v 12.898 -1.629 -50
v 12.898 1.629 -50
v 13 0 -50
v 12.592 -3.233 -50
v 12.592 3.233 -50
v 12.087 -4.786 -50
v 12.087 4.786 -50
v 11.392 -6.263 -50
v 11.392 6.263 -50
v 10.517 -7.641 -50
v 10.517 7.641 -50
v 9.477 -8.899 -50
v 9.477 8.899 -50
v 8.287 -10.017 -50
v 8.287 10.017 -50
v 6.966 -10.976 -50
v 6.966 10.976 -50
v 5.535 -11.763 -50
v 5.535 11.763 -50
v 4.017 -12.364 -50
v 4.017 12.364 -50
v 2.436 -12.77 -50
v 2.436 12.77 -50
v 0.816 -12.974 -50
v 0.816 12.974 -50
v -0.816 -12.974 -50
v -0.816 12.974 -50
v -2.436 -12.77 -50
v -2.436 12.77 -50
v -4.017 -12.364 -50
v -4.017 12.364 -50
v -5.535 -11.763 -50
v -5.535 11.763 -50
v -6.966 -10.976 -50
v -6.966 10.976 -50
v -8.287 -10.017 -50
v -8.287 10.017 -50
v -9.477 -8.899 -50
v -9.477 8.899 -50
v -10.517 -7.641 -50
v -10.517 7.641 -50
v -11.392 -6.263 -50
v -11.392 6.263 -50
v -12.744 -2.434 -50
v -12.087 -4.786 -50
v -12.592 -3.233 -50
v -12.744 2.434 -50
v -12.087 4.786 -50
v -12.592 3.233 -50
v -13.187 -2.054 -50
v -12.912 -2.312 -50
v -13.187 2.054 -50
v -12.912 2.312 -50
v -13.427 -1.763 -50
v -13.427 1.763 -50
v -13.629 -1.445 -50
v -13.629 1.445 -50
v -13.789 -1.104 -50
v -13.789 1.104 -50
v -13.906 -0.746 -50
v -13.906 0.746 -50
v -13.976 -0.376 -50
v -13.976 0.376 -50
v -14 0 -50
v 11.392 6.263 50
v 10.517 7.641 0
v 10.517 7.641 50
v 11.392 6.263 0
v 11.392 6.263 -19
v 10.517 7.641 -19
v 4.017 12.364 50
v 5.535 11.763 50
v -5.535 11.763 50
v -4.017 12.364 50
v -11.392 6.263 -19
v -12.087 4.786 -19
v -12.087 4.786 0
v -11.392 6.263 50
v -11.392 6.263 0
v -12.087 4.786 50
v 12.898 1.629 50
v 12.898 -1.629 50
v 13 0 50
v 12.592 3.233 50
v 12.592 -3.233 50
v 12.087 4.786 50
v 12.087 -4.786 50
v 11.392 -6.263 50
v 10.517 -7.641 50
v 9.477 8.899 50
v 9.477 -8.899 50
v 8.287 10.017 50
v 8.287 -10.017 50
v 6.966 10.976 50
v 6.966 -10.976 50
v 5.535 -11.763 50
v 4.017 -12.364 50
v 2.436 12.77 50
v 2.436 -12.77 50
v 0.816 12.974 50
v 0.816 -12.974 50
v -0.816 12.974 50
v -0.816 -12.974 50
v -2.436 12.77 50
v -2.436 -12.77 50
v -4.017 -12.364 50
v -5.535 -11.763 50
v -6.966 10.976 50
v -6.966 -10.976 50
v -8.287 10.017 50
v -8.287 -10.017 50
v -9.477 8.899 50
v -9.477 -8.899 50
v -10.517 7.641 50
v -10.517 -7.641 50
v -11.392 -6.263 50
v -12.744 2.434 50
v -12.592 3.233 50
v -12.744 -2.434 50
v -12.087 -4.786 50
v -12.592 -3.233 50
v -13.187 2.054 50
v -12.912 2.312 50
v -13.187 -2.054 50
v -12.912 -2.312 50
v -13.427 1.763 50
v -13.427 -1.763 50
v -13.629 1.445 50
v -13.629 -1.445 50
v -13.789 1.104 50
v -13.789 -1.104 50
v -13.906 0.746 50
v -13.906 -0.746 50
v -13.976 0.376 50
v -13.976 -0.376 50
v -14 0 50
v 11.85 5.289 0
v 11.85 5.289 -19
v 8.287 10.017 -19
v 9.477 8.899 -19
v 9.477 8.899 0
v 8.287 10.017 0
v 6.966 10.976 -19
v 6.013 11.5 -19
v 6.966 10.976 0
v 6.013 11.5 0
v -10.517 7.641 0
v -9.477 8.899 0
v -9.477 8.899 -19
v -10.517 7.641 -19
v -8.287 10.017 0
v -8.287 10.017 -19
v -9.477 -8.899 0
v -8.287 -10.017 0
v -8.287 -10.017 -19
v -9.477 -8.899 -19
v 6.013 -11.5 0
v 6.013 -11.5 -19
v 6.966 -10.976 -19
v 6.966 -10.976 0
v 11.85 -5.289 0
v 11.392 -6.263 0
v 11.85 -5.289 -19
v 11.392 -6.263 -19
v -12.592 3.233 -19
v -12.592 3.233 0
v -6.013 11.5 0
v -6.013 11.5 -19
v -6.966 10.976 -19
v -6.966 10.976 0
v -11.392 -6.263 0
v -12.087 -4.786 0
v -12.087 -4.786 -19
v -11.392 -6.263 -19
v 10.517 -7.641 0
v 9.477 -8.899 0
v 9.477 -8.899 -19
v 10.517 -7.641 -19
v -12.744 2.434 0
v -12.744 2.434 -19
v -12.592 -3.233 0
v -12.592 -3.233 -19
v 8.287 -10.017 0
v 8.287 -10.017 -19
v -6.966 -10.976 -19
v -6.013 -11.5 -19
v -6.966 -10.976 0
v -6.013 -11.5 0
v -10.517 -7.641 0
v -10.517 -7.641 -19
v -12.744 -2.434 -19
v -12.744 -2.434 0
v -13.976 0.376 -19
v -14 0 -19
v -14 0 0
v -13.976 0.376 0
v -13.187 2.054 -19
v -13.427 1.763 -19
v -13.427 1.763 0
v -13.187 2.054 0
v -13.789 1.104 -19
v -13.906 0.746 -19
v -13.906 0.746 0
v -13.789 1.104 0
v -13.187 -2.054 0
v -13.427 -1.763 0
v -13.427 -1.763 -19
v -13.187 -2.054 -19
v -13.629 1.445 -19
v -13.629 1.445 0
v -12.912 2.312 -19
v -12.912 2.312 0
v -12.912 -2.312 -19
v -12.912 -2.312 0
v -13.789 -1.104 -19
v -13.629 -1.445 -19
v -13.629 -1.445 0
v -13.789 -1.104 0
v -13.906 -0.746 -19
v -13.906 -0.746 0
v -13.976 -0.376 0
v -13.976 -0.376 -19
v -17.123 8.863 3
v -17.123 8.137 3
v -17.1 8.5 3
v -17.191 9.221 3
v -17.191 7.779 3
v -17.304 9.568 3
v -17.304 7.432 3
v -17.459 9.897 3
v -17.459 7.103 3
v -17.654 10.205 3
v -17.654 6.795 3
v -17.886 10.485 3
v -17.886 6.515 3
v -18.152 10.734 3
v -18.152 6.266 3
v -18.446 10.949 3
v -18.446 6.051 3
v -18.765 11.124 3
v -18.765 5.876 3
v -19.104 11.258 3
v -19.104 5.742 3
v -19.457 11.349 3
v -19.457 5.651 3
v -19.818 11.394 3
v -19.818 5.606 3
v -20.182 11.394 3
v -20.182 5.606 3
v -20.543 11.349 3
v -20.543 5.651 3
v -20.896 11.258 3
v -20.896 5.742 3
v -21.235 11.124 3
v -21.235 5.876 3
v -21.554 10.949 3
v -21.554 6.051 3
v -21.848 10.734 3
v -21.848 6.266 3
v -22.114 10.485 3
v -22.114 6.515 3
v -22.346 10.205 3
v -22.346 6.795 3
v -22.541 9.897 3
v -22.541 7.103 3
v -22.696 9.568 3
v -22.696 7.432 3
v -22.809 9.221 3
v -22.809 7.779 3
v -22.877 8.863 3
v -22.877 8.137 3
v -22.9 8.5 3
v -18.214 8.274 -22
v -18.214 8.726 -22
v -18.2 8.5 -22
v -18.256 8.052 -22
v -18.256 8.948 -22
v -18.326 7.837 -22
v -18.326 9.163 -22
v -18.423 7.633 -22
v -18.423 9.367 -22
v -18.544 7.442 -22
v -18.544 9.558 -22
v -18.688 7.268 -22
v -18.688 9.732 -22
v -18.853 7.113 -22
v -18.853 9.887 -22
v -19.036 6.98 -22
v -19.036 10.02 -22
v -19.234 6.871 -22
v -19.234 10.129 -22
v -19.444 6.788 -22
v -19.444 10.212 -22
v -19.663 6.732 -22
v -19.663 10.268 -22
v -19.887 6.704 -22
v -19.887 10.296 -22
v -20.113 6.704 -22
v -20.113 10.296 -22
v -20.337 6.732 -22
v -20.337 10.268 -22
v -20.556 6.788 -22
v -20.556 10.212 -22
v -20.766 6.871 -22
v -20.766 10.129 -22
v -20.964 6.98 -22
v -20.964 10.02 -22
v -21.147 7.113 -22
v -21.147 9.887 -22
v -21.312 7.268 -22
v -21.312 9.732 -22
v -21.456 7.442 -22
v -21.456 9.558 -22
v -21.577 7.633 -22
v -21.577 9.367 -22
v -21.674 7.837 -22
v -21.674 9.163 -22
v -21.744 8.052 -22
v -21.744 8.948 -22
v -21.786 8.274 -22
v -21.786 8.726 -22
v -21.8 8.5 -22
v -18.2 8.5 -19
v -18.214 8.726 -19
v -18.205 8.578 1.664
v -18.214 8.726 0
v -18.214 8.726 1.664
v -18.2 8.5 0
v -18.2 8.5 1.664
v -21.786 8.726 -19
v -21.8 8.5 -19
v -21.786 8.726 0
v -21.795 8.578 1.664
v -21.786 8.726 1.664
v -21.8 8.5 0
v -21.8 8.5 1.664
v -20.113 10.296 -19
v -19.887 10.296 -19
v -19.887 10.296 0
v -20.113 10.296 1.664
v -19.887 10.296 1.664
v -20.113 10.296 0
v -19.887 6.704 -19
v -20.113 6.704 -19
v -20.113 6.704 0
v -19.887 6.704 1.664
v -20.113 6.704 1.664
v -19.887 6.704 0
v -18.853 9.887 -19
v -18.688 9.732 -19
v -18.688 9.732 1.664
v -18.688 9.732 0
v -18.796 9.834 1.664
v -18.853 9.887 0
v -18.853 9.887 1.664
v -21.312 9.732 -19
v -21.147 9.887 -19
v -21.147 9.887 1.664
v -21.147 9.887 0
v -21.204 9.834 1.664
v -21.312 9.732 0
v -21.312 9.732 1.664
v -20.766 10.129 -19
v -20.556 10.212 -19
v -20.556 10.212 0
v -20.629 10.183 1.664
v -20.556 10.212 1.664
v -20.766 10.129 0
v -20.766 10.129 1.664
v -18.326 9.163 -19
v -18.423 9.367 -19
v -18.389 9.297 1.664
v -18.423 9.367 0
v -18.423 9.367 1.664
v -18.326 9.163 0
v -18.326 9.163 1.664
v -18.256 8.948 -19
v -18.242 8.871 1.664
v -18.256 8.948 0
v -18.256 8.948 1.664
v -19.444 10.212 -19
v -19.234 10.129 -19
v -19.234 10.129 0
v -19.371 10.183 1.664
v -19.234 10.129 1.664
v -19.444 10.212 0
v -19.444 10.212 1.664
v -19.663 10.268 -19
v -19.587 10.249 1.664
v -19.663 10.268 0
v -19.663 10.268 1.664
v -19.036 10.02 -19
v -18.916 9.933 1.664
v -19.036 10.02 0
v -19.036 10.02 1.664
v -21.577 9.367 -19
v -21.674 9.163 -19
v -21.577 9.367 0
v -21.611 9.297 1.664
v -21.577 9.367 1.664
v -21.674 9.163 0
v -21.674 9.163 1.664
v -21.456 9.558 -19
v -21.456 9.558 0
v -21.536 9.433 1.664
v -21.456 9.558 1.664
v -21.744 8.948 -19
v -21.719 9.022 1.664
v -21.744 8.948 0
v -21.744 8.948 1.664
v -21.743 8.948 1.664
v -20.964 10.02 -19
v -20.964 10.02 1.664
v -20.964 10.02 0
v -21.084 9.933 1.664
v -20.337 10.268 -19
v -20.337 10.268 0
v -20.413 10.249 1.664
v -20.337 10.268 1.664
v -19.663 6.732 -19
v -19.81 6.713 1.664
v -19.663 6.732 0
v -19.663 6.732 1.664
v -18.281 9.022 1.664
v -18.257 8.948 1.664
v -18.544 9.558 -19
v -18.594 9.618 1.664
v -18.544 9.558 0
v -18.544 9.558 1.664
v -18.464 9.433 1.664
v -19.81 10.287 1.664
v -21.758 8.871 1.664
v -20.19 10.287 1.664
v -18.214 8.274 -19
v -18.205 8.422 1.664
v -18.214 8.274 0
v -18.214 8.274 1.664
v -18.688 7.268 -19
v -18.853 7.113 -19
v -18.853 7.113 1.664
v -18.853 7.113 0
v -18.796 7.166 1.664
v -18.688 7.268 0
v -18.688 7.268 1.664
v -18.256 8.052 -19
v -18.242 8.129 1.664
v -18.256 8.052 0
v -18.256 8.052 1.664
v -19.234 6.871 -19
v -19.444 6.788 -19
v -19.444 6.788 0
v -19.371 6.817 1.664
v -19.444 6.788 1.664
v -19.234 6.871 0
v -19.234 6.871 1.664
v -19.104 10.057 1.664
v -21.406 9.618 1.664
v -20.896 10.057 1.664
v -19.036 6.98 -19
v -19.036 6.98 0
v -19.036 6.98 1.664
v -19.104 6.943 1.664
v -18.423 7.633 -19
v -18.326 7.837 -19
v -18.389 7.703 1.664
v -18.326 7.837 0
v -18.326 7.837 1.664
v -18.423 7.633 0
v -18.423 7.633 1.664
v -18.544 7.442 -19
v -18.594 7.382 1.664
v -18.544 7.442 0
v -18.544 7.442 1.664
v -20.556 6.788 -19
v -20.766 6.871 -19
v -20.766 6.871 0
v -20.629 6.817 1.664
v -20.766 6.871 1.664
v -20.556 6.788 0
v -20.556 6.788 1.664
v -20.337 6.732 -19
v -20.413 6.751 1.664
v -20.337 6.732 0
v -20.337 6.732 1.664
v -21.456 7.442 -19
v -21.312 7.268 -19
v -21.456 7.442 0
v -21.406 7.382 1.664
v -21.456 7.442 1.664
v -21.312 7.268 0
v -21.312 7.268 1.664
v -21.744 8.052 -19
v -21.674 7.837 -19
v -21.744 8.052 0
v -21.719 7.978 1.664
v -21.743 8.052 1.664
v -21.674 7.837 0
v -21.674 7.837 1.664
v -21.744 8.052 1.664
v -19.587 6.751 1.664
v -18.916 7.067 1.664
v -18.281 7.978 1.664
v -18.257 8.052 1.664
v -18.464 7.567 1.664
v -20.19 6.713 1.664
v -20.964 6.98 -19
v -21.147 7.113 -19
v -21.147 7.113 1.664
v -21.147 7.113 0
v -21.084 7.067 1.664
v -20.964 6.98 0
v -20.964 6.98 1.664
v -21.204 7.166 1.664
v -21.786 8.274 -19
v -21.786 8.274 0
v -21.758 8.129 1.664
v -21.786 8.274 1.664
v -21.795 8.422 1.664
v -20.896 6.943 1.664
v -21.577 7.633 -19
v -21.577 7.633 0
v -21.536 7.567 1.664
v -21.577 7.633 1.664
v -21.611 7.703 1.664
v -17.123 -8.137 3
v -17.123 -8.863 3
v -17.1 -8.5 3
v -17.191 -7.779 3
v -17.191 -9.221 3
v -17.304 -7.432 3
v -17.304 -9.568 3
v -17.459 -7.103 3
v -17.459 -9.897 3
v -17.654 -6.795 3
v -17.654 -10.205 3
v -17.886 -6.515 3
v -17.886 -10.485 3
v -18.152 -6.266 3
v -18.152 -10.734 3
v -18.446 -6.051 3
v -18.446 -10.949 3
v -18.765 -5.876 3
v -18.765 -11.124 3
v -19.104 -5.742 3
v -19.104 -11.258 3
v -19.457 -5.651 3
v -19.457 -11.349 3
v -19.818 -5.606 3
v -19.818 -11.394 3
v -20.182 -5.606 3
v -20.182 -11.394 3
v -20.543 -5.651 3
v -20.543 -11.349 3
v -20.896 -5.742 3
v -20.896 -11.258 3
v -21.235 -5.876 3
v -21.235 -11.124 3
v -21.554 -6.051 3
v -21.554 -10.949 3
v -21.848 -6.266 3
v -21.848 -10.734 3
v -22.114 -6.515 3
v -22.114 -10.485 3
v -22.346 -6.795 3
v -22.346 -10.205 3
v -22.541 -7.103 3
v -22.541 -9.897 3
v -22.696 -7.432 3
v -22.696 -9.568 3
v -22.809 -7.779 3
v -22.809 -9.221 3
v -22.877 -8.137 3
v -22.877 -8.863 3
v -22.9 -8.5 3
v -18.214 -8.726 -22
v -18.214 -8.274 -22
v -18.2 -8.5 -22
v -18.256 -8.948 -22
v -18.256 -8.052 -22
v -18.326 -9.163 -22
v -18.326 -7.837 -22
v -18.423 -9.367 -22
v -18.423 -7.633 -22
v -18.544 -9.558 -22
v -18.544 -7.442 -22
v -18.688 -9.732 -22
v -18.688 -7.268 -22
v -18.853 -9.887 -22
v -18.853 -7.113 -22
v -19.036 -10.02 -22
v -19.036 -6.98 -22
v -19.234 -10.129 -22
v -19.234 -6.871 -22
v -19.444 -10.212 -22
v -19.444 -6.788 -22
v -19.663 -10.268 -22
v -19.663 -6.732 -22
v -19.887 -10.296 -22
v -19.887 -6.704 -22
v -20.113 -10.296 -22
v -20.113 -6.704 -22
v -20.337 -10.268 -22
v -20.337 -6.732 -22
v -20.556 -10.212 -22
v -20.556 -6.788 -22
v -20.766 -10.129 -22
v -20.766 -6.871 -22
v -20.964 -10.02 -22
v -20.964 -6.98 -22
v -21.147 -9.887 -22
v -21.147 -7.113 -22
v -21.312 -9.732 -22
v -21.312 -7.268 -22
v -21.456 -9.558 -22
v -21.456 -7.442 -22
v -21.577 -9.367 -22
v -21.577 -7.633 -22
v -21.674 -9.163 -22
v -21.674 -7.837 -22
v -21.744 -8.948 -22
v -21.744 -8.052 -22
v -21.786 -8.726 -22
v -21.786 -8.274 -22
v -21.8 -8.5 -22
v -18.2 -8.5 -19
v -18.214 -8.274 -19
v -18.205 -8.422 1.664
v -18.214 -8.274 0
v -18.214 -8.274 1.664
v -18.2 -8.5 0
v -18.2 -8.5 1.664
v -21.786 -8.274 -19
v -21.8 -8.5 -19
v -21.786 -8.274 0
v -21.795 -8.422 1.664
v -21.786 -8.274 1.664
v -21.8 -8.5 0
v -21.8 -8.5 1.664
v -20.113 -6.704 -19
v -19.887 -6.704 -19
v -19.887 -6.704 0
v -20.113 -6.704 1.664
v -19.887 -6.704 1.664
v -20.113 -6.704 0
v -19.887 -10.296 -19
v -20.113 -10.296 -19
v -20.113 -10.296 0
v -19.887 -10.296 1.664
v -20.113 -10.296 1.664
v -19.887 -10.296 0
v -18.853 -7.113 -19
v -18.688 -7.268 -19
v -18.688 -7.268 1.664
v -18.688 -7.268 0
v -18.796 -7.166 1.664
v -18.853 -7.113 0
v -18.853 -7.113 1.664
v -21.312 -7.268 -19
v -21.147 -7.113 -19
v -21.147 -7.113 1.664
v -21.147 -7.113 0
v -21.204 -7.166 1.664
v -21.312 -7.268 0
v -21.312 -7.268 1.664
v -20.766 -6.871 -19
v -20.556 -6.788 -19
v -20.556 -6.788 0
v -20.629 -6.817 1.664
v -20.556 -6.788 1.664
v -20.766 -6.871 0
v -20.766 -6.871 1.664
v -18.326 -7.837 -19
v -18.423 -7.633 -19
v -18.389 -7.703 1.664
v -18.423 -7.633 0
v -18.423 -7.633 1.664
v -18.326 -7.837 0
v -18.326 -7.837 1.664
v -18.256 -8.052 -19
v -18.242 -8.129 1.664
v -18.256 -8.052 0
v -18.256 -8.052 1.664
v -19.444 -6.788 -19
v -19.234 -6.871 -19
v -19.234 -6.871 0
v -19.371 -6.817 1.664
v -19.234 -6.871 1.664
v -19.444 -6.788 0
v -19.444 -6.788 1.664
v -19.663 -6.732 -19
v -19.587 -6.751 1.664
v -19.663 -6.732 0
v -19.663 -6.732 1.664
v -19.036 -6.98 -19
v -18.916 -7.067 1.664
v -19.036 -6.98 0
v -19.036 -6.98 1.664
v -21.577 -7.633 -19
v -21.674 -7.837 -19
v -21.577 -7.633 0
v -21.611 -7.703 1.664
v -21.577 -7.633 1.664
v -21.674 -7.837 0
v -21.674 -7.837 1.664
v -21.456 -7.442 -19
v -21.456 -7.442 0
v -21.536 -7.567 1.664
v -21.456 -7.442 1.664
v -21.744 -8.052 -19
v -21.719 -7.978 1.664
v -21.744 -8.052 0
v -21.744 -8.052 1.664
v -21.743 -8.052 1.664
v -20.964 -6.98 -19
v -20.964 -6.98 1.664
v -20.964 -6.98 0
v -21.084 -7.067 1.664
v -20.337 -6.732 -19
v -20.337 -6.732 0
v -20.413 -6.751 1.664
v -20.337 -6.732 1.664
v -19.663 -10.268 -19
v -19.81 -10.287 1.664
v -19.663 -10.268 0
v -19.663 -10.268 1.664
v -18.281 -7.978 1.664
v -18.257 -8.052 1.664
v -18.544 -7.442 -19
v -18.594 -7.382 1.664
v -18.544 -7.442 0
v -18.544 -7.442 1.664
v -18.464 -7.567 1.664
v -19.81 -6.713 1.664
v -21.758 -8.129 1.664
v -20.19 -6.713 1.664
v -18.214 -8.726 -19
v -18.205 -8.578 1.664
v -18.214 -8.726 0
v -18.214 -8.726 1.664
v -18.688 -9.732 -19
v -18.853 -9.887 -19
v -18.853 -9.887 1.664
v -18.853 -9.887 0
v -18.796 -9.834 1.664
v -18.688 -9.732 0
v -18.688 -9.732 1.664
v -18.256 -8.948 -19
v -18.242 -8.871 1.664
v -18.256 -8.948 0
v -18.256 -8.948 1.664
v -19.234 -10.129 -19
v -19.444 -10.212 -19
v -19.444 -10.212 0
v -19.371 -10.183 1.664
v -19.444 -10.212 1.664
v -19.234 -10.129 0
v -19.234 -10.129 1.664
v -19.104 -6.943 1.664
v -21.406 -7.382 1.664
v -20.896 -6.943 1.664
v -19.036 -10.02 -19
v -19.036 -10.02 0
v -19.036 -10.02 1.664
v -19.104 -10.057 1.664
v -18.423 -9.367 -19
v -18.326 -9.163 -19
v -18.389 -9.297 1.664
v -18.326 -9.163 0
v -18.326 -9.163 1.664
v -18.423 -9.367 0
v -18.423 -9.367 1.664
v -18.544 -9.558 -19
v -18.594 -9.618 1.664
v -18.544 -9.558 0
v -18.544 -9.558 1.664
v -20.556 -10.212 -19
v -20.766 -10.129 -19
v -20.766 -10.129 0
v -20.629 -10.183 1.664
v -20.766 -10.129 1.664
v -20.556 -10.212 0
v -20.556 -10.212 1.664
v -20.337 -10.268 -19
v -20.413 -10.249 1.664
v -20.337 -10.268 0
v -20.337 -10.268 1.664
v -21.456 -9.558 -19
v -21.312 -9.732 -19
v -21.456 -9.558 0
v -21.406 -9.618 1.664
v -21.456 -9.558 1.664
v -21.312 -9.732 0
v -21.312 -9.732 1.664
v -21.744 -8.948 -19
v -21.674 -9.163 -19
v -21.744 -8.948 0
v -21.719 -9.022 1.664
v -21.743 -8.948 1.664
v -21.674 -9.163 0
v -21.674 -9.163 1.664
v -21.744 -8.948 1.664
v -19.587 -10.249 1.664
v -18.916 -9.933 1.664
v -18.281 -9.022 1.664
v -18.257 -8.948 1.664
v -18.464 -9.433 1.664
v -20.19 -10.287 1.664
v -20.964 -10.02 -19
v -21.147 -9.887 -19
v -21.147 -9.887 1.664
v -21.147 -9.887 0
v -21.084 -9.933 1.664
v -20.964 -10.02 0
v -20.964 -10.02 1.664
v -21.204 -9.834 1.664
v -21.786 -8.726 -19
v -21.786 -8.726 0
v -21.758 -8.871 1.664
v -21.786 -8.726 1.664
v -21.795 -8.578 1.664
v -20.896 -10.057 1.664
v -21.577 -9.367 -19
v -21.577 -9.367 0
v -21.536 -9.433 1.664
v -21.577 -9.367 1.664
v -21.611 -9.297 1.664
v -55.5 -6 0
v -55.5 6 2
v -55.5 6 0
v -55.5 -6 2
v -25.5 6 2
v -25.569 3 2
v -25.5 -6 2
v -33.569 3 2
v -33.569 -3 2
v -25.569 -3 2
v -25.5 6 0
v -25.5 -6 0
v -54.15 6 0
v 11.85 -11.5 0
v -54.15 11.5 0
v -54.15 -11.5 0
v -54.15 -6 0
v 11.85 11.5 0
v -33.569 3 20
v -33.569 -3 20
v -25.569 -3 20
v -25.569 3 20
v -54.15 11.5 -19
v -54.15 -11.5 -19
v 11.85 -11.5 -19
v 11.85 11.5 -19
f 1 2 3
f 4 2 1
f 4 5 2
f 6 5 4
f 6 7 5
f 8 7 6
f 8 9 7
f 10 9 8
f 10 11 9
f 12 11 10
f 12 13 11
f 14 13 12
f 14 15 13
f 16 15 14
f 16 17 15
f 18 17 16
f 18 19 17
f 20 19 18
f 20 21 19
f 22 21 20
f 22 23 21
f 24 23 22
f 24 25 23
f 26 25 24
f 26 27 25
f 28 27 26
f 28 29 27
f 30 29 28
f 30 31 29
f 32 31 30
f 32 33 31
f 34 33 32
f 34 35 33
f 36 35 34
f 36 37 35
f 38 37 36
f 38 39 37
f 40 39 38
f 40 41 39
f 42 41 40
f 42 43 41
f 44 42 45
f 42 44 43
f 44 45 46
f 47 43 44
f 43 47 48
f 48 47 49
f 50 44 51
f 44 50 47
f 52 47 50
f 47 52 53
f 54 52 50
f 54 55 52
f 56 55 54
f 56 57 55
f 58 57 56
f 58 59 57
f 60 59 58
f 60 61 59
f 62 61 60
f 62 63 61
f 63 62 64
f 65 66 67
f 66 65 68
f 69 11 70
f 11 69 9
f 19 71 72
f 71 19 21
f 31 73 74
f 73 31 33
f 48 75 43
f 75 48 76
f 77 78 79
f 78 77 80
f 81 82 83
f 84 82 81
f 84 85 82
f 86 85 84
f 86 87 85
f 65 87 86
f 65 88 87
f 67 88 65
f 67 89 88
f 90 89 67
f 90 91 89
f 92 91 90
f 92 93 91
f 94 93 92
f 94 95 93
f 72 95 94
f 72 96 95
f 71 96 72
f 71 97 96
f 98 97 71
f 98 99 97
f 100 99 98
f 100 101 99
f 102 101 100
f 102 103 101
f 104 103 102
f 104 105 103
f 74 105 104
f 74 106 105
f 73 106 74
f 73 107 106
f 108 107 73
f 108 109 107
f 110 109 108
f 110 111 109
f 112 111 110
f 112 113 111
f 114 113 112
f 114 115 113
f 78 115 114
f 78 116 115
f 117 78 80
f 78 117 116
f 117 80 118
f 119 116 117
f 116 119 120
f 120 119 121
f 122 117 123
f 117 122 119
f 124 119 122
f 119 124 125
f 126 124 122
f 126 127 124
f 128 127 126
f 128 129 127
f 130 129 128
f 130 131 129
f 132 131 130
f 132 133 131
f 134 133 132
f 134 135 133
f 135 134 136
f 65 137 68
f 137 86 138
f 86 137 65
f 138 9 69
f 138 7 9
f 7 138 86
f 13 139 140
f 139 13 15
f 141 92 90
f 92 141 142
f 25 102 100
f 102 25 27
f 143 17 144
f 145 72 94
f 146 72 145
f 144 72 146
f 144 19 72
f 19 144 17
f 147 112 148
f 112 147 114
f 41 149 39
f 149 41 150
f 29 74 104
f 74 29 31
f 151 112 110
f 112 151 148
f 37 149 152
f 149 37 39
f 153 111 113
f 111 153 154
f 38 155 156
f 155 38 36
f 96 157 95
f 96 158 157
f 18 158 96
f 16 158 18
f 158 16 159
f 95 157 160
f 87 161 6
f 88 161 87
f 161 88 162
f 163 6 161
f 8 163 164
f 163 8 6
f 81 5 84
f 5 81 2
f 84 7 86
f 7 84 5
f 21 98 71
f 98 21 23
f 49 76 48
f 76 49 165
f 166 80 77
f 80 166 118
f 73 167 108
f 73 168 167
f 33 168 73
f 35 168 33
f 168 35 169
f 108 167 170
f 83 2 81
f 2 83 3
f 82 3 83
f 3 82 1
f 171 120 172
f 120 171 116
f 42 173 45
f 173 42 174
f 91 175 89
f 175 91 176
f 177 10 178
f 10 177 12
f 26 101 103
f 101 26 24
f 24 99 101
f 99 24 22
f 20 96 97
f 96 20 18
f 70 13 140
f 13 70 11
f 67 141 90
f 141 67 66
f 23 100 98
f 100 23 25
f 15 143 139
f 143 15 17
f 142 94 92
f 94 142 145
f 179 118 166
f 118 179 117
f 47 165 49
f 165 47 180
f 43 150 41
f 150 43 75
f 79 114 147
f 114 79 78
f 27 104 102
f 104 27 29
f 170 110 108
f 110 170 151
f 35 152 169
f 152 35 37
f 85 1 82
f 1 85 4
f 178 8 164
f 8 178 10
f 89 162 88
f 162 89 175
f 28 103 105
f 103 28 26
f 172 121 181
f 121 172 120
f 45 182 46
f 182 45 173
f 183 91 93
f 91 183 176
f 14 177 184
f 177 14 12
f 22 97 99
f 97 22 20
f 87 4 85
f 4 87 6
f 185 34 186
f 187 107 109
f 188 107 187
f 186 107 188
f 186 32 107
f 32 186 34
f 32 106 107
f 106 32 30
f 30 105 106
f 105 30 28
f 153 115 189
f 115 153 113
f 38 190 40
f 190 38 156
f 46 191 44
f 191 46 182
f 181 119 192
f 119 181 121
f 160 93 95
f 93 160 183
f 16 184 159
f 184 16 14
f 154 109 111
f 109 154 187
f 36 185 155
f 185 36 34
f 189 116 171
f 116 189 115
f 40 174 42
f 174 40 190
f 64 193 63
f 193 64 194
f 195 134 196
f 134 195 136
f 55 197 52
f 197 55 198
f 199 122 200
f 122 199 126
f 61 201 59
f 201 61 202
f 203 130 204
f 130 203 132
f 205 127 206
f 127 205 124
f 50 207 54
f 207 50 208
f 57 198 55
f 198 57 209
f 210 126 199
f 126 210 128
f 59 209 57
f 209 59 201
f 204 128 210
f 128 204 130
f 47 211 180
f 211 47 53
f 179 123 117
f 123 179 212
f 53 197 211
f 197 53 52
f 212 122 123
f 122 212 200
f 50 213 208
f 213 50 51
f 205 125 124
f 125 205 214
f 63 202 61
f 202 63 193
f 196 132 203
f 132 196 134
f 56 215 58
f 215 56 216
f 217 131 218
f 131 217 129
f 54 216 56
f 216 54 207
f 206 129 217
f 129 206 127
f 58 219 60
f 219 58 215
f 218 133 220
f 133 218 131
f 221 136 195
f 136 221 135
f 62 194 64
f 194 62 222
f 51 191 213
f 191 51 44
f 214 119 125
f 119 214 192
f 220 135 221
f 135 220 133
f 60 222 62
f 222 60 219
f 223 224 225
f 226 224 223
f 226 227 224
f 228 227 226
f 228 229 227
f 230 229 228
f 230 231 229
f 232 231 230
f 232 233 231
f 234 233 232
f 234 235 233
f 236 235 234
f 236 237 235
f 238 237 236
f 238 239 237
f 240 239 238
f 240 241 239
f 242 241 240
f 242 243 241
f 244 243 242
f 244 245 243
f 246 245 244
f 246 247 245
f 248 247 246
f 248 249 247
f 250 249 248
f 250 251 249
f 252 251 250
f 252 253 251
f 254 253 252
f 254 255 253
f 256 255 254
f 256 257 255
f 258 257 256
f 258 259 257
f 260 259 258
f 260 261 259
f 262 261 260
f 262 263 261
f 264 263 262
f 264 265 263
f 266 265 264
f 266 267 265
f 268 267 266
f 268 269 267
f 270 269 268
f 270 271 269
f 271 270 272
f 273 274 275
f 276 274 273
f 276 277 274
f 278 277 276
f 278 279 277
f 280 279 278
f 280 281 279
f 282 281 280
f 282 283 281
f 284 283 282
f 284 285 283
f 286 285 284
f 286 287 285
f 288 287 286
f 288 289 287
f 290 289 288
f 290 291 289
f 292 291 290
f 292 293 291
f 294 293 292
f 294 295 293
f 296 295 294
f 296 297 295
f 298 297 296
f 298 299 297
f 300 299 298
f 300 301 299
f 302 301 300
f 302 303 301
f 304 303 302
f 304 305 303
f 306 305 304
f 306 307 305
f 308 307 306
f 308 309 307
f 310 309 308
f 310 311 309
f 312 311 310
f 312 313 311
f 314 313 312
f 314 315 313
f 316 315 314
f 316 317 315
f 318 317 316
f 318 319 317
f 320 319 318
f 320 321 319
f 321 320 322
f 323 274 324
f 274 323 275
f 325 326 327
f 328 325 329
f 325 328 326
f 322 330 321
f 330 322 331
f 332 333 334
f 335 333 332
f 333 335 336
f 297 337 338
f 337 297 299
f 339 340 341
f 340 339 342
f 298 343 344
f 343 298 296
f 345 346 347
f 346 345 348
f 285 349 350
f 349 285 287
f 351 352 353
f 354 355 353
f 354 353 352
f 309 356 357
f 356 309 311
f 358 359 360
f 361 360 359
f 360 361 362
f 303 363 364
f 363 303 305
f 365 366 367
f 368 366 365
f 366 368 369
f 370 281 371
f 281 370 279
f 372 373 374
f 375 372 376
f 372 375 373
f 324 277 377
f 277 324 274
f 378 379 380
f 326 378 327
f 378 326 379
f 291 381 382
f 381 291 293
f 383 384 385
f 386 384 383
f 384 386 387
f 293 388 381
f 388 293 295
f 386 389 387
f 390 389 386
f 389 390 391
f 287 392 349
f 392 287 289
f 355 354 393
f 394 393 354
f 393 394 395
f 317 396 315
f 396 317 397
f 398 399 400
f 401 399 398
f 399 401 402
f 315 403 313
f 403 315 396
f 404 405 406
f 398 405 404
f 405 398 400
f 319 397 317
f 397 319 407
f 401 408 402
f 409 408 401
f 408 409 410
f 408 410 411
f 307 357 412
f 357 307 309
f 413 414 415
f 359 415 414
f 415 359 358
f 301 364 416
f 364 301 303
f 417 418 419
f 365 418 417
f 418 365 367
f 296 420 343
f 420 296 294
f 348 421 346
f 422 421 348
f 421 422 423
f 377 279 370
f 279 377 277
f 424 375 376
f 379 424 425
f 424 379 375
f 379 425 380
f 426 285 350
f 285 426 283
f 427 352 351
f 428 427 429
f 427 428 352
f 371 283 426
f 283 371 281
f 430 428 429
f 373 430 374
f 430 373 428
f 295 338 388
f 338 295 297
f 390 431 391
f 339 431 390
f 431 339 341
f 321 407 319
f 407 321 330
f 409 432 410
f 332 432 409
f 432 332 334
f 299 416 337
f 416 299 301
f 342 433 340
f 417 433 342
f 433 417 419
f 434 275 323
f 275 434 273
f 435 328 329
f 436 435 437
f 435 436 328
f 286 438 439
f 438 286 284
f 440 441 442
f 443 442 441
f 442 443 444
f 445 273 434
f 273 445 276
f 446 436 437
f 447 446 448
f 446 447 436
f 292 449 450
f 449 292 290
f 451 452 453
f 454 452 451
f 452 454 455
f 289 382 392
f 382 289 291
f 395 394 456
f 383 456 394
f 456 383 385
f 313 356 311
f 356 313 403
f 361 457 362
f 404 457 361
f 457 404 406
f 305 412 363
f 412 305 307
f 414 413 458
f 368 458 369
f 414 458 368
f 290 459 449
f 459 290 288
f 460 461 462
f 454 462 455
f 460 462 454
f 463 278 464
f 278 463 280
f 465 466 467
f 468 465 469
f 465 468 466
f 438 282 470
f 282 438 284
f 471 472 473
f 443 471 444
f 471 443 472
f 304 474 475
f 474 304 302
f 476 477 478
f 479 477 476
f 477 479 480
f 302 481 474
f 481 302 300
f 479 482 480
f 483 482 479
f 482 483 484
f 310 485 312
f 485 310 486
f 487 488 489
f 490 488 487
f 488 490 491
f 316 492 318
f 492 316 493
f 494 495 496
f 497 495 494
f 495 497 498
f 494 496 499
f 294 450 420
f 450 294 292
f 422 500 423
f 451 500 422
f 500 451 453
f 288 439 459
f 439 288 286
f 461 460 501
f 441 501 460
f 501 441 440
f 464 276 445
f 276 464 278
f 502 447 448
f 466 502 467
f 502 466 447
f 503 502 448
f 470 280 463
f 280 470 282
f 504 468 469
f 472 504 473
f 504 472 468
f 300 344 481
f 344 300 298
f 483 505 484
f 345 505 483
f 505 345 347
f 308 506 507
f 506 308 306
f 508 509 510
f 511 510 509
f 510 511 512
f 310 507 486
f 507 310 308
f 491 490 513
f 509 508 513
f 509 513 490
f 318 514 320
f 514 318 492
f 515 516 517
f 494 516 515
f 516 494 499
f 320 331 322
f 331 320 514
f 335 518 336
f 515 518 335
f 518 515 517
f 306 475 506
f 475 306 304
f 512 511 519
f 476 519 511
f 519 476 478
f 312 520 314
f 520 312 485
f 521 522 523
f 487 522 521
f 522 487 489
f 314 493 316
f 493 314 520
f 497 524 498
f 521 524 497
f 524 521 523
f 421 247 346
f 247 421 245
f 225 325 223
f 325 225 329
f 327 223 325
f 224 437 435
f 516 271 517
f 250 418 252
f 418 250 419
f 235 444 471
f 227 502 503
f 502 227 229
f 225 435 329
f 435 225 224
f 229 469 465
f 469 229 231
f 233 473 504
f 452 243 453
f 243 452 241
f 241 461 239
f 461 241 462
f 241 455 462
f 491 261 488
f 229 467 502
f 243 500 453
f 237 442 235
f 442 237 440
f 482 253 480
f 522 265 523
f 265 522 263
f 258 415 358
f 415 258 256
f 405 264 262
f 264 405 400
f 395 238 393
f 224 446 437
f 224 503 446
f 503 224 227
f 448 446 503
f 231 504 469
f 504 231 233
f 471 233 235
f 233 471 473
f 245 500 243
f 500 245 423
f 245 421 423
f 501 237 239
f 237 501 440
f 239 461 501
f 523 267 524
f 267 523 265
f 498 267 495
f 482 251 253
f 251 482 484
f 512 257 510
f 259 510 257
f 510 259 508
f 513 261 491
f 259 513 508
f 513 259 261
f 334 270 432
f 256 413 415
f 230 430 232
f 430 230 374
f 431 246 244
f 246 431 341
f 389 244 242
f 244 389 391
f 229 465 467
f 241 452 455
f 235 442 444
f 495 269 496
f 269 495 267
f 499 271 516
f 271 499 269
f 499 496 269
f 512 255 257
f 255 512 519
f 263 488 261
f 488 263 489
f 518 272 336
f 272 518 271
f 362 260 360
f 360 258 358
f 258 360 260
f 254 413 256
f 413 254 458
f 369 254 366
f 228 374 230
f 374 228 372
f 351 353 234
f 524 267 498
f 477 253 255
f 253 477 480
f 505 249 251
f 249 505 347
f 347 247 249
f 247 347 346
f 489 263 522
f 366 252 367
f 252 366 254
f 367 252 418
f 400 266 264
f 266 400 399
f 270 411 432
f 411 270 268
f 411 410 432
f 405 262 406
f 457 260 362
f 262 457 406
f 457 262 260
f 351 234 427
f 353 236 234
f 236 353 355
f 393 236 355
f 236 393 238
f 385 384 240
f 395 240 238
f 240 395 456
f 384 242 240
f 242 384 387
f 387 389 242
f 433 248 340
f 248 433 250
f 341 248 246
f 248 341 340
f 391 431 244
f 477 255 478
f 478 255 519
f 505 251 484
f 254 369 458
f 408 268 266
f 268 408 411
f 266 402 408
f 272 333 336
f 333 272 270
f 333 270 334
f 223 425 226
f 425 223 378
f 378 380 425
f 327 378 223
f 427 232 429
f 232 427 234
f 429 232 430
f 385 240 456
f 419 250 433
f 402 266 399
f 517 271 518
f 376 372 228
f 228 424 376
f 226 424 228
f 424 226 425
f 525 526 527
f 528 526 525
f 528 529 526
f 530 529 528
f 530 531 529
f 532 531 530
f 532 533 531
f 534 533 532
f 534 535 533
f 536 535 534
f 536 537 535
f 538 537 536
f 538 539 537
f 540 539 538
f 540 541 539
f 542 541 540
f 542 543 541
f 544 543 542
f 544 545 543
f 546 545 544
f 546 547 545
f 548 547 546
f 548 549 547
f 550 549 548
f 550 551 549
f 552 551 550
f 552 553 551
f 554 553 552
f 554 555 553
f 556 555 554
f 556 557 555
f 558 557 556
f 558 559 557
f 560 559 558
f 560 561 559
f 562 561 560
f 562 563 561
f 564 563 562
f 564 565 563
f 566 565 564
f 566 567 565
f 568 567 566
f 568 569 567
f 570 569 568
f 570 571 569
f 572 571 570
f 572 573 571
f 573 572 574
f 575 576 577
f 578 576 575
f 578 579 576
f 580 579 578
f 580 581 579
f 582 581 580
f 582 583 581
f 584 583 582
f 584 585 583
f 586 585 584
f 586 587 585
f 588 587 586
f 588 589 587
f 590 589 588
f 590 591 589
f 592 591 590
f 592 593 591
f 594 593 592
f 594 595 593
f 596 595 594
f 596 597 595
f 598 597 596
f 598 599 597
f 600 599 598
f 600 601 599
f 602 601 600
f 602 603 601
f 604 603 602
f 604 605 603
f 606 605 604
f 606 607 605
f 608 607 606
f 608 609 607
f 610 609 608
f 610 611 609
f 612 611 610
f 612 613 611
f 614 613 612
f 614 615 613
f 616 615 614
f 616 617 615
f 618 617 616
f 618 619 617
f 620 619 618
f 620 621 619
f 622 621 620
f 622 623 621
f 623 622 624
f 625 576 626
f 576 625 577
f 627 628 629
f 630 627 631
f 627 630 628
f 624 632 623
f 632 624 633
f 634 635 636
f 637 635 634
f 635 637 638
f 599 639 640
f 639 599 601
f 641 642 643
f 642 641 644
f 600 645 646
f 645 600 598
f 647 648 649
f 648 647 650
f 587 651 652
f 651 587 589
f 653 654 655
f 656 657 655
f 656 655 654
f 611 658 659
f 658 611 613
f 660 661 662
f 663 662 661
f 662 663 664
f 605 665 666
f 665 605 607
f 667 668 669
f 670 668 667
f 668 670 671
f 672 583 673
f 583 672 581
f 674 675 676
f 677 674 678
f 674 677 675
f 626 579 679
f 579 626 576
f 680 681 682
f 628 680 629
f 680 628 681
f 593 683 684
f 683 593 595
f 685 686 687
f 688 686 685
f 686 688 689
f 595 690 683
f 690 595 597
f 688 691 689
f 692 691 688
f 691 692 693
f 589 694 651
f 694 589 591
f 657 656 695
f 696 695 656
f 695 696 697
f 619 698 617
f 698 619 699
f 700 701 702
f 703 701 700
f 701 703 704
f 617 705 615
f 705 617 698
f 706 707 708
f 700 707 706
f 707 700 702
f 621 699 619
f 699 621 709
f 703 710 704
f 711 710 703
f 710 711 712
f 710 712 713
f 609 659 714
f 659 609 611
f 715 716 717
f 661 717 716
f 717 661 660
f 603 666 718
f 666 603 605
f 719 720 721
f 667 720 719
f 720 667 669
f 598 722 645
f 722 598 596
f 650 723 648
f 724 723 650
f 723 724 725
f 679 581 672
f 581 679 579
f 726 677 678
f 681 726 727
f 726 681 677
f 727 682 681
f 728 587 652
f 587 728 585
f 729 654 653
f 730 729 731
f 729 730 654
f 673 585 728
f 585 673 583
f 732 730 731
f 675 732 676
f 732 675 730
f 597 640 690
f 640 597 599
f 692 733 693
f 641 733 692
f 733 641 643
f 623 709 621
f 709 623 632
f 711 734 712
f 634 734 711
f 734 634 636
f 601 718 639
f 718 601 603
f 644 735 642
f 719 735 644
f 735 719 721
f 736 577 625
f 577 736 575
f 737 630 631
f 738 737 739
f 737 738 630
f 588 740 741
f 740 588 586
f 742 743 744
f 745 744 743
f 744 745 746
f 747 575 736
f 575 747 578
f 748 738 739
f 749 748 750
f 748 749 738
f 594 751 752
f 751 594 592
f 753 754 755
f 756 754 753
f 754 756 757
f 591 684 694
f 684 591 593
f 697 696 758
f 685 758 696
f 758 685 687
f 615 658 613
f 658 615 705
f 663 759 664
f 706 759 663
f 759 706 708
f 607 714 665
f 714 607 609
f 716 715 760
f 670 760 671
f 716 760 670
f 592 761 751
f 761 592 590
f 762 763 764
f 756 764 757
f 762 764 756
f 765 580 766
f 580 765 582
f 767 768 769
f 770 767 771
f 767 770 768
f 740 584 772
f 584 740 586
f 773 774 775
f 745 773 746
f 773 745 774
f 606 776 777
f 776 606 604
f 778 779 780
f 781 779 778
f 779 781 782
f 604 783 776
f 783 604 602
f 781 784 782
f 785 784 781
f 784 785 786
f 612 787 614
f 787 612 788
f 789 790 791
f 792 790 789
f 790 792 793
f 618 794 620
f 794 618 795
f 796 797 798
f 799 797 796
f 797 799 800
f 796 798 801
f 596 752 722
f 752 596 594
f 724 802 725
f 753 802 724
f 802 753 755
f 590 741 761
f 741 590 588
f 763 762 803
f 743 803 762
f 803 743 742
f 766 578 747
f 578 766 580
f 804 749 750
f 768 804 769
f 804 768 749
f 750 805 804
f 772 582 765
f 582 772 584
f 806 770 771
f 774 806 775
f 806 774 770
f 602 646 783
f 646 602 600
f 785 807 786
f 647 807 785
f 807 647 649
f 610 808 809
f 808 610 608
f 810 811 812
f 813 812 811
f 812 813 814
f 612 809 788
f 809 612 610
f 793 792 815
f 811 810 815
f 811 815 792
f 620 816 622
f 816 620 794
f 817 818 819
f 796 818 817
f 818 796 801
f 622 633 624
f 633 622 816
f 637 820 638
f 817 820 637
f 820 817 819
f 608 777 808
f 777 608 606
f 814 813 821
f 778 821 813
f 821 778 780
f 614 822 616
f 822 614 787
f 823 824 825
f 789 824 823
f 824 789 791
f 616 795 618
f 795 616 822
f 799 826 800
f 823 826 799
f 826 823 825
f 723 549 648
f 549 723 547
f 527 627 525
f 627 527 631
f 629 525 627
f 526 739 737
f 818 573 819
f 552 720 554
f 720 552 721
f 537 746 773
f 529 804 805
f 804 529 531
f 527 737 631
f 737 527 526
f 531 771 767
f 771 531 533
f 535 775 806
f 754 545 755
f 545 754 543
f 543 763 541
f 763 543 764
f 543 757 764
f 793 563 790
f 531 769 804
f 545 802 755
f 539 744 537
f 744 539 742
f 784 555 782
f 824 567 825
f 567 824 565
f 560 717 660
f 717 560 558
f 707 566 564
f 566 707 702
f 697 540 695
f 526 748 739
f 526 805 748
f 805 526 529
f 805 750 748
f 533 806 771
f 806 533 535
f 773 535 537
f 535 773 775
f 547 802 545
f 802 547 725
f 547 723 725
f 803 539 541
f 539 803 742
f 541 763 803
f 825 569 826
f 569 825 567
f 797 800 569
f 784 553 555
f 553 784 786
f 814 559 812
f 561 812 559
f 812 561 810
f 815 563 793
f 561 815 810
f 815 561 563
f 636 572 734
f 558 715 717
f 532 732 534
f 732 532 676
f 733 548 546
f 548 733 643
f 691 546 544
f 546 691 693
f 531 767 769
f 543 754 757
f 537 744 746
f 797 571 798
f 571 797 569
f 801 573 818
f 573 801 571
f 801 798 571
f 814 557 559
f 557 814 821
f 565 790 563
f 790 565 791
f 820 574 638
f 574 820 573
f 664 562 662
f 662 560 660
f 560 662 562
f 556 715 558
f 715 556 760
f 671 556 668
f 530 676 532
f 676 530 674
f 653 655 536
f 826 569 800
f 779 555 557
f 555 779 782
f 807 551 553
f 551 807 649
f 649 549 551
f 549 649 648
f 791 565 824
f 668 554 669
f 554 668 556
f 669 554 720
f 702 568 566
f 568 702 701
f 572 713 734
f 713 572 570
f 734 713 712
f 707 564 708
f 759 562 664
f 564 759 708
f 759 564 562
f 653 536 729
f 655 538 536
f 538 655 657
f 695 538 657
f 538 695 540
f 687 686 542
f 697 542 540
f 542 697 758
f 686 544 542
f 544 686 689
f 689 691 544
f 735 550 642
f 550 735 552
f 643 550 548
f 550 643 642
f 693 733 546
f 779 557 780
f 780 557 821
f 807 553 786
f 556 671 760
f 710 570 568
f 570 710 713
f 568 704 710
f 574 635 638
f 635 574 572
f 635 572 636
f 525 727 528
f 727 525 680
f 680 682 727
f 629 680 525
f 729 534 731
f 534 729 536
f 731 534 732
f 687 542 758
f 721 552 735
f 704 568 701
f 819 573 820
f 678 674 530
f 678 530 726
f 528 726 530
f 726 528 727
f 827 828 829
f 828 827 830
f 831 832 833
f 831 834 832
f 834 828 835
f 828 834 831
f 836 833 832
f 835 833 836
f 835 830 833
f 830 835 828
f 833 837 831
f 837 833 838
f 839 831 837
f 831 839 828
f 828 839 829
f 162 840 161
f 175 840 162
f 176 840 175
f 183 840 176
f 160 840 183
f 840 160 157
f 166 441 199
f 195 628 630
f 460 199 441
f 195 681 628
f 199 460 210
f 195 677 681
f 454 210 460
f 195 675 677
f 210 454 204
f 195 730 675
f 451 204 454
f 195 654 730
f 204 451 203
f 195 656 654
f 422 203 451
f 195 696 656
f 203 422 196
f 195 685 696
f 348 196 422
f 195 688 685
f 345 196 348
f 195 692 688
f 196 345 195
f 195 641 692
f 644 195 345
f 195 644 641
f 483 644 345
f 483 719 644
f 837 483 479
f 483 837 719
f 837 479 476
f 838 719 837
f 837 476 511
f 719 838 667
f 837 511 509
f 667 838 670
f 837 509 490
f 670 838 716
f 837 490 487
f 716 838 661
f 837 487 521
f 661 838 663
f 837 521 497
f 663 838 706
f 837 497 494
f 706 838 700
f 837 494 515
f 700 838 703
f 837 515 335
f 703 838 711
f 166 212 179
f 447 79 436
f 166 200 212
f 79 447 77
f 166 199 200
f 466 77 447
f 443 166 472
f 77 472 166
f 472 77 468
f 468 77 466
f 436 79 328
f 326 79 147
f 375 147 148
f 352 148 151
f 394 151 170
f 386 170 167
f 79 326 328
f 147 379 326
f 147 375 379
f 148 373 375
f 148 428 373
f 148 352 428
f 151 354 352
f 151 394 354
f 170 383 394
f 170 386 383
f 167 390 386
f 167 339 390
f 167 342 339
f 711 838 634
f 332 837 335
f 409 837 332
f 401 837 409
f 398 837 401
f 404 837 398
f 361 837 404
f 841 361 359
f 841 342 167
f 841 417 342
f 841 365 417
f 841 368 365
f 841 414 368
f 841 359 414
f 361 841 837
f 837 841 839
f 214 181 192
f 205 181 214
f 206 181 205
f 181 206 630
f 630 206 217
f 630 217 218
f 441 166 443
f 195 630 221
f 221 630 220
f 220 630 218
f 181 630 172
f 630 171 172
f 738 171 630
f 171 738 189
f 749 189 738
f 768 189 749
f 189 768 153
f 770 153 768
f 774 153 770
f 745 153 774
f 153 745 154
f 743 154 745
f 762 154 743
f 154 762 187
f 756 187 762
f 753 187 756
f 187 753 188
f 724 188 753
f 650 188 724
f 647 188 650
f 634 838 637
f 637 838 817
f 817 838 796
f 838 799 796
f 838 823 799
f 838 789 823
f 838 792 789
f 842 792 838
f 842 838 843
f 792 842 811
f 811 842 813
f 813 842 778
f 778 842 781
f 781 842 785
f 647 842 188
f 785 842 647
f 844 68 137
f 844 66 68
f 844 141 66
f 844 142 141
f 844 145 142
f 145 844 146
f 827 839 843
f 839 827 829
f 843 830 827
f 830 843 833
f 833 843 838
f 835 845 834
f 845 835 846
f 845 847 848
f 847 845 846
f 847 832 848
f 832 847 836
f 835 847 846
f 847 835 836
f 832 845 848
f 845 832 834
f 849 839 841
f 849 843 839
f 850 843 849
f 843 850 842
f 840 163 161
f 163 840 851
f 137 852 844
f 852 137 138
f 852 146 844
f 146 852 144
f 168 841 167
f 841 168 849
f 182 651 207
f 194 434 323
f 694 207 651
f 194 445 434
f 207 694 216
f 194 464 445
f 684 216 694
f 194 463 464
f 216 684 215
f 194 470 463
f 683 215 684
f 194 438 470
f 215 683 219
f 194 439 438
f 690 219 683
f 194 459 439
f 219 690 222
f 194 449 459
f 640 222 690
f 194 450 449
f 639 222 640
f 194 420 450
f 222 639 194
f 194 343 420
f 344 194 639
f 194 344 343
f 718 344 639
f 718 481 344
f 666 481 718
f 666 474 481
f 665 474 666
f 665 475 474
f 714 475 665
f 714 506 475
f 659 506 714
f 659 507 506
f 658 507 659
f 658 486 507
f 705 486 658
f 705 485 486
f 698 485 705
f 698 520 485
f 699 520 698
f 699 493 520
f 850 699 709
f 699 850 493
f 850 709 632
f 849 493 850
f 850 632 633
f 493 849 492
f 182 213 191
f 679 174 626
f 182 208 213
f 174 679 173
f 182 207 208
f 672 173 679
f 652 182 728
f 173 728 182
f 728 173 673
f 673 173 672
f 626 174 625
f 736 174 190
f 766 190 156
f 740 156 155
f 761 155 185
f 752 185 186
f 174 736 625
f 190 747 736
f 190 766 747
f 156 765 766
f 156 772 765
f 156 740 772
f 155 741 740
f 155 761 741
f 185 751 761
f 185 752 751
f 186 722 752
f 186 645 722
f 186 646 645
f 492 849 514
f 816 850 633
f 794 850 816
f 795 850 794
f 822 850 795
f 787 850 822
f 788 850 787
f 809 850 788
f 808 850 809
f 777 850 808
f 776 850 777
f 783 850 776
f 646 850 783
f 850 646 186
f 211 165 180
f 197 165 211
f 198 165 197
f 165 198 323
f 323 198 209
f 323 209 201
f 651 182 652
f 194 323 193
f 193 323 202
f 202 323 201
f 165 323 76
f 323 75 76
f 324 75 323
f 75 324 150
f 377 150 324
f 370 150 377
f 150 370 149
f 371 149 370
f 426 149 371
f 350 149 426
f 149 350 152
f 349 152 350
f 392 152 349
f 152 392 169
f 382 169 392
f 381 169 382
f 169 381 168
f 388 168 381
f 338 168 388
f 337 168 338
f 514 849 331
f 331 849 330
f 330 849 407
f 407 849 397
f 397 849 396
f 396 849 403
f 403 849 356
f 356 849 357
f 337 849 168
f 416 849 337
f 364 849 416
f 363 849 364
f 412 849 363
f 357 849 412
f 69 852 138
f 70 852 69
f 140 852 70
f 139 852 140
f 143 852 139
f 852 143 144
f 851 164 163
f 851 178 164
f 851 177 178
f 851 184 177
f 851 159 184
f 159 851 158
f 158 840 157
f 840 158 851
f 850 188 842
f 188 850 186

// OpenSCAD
$fn = 50;


difference() {
	union() {
		translate(v = [0, 0, 0]) {
			rotate(a = [0, 0, 0]) {
				difference() {
					union() {
						translate(v = [0, 0, 0]) {
							rotate(a = [0, 0, 0]) {
								difference() {
									union() {
										translate(v = [0, 0, -50.0000000000]) {
											cylinder(h = 100, r = 13.0000000000);
										}
									}
									union();
								}
							}
						}
						translate(v = [-11, 0, 0]) {
							rotate(a = [0, 0, 0]) {
								difference() {
									union() {
										translate(v = [0, 0, -50.0000000000]) {
											cylinder(h = 100, r = 3.0000000000);
										}
									}
									union();
								}
							}
						}
						translate(v = [-20, 8.5000000000, 3]) {
							rotate(a = [0, 0, 0]) {
								difference() {
									union() {
										translate(v = [0, 0, -25.0000000000]) {
											cylinder(h = 25, r = 1.5000000000);
										}
										translate(v = [0, 0, -25.0000000000]) {
											cylinder(h = 25, r = 1.8000000000);
										}
										translate(v = [0, 0, -1.7000000000]) {
											cylinder(h = 1.7000000000, r1 = 1.5000000000, r2 = 2.9000000000);
										}
										translate(v = [0, 0, -25.0000000000]) {
											cylinder(h = 25, r = 1.5000000000);
										}
									}
									union();
								}
							}
						}
						translate(v = [-20, -8.5000000000, 3]) {
							rotate(a = [0, 0, 0]) {
								difference() {
									union() {
										translate(v = [0, 0, -25.0000000000]) {
											cylinder(h = 25, r = 1.5000000000);
										}
										translate(v = [0, 0, -25.0000000000]) {
											cylinder(h = 25, r = 1.8000000000);
										}
										translate(v = [0, 0, -1.7000000000]) {
											cylinder(h = 1.7000000000, r1 = 1.5000000000, r2 = 2.9000000000);
										}
										translate(v = [0, 0, -25.0000000000]) {
											cylinder(h = 25, r = 1.5000000000);
										}
									}
									union();
								}
							}
						}
						translate(v = [-55.5000000000, -6.0000000000, 0]) {
							cube(size = [30, 12, 2]);
						}
						translate(v = [-54.0000000000, -4.0000000000, 0]) {
							cube(size = [18, 8, 2]);
						}
						translate(v = [-33.5690000000, -3.0000000000, 0]) {
							cube(size = [8, 6, 20]);
						}
						translate(v = [-54.1500000000, -11.5000000000, -19]) {
							cube(size = [66, 23, 19]);
						}
					}
					union();
				}
			}
		}
	}
	union();
}
